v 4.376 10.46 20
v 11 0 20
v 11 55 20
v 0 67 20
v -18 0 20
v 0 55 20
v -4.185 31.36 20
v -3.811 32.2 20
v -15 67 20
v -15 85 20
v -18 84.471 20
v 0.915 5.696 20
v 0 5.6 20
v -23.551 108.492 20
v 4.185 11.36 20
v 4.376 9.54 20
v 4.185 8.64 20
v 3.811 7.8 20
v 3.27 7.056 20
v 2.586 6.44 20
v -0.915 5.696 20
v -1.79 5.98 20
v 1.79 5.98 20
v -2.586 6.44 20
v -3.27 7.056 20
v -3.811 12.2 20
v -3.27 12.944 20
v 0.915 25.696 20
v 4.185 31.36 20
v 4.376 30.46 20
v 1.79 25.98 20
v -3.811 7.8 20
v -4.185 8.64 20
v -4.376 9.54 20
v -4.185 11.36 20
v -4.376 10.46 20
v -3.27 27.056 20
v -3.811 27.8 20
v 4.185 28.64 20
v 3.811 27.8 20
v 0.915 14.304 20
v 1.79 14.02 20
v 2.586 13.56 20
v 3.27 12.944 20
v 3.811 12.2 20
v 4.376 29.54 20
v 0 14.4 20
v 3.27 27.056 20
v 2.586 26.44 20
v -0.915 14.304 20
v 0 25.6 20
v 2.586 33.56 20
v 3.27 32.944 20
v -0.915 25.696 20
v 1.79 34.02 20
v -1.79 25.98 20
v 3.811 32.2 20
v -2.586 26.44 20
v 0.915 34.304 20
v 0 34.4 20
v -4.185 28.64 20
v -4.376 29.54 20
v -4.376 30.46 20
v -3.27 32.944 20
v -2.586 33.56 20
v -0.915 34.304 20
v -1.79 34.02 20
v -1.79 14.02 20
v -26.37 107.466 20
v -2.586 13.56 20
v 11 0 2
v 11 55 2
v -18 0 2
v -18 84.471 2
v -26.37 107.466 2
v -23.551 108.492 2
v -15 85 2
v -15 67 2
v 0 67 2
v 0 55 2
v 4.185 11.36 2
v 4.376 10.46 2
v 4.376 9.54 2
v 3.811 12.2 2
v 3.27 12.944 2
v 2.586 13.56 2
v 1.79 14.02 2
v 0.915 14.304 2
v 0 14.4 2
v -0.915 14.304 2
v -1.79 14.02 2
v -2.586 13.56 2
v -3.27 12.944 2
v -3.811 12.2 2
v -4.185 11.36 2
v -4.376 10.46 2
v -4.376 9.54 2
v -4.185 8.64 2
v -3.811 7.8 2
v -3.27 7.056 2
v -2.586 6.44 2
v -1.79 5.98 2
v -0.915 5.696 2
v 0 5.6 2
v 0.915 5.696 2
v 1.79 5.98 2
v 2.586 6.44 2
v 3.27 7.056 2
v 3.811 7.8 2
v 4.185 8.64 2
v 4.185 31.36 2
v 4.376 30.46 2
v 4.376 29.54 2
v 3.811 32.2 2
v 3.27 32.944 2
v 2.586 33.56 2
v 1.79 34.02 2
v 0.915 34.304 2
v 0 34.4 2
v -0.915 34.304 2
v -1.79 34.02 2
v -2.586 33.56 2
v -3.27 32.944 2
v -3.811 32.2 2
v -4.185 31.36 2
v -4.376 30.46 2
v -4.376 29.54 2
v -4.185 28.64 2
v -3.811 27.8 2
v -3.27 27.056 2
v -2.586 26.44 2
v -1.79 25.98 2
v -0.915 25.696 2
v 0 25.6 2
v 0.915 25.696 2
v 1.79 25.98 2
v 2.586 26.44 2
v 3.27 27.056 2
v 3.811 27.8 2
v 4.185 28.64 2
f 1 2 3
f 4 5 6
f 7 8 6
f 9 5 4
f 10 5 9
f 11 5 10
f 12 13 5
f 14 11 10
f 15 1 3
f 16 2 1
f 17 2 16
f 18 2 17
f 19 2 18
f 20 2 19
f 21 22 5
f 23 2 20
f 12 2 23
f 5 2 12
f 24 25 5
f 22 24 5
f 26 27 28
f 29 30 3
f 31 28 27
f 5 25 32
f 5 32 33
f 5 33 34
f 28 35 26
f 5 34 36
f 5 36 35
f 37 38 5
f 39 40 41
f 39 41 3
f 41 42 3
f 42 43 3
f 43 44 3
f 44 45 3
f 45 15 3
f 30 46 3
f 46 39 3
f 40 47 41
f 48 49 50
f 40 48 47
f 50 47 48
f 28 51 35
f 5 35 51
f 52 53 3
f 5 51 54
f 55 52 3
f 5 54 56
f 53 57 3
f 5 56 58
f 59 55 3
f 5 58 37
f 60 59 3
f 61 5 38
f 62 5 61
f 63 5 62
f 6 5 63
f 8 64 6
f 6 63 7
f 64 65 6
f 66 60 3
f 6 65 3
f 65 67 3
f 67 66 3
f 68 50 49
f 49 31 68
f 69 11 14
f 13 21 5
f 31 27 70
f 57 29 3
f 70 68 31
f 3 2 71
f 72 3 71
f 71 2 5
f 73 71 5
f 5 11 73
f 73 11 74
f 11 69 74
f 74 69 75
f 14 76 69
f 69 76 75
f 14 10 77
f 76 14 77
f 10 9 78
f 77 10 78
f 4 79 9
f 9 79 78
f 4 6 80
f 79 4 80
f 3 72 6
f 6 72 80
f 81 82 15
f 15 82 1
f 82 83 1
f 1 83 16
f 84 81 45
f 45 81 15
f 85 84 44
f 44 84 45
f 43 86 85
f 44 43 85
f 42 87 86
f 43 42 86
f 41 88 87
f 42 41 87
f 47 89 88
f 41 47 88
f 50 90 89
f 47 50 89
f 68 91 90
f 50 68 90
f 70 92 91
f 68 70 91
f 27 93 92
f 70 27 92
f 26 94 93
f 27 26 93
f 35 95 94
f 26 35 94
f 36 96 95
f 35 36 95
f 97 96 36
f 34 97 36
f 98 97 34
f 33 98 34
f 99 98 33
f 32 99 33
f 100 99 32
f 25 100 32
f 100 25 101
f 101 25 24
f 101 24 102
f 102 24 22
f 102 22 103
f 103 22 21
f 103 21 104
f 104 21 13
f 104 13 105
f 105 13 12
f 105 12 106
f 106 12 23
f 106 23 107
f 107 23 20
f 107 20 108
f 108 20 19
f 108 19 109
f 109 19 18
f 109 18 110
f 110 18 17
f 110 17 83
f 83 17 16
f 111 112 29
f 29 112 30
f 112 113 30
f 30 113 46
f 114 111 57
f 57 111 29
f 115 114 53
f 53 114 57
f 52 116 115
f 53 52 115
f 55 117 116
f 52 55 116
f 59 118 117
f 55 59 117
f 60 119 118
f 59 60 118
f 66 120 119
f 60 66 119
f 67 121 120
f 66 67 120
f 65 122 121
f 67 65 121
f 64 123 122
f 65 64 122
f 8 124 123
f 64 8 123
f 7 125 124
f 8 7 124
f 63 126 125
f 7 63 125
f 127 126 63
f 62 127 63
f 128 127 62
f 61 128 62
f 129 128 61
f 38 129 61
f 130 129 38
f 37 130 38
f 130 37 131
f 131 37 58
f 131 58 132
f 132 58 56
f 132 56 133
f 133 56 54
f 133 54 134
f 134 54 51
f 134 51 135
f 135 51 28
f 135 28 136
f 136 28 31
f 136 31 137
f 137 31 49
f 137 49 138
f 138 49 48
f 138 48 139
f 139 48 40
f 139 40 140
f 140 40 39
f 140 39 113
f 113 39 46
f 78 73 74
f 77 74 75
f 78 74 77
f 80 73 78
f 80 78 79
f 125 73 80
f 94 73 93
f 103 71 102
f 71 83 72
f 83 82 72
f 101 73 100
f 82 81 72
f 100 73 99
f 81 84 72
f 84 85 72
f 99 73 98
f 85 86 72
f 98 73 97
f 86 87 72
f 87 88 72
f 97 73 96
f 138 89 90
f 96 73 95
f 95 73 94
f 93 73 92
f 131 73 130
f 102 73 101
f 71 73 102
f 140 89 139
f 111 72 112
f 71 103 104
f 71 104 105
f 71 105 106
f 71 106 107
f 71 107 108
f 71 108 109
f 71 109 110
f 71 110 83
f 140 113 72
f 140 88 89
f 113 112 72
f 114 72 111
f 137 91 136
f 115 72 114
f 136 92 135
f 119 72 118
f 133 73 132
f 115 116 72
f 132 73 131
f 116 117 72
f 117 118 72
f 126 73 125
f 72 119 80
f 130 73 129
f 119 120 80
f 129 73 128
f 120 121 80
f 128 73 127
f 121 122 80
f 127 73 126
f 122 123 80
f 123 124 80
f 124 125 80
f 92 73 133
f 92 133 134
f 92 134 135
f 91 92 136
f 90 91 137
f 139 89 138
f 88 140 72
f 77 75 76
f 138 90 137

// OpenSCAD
module corner_base(){	

 translate([-9,-11,0])cube([18,29,55]);
 // Support
 translate([-9,0,55])cube([18,18,12]);
// Guide
 translate([-9,15,55])cube([18,3,30]);
// Hopper
 translate([-9,15,85])rotate([-20,0,0])cube([18,3,25]); 
}

module corner_holes(){
 translate([-11,-11,0]){

  // Bottom hole
  translate([0,11,10]) rotate([0,90,0]) translate([0,0,-5]) cylinder(h = 270, r=4.4, $fn=30);
  // Top hole
  translate([0,11,30]) rotate([0,90,0]) translate([0,0,-5]) cylinder(h = 270, r=4.4, $fn=30);

 }
}

// Final part
module corner(){

 // Rotate the part for better printing
 translate([0,0,11]) rotate([-90,90,0]) difference(){

  corner_base();
  corner_holes();

 }
}

corner();
